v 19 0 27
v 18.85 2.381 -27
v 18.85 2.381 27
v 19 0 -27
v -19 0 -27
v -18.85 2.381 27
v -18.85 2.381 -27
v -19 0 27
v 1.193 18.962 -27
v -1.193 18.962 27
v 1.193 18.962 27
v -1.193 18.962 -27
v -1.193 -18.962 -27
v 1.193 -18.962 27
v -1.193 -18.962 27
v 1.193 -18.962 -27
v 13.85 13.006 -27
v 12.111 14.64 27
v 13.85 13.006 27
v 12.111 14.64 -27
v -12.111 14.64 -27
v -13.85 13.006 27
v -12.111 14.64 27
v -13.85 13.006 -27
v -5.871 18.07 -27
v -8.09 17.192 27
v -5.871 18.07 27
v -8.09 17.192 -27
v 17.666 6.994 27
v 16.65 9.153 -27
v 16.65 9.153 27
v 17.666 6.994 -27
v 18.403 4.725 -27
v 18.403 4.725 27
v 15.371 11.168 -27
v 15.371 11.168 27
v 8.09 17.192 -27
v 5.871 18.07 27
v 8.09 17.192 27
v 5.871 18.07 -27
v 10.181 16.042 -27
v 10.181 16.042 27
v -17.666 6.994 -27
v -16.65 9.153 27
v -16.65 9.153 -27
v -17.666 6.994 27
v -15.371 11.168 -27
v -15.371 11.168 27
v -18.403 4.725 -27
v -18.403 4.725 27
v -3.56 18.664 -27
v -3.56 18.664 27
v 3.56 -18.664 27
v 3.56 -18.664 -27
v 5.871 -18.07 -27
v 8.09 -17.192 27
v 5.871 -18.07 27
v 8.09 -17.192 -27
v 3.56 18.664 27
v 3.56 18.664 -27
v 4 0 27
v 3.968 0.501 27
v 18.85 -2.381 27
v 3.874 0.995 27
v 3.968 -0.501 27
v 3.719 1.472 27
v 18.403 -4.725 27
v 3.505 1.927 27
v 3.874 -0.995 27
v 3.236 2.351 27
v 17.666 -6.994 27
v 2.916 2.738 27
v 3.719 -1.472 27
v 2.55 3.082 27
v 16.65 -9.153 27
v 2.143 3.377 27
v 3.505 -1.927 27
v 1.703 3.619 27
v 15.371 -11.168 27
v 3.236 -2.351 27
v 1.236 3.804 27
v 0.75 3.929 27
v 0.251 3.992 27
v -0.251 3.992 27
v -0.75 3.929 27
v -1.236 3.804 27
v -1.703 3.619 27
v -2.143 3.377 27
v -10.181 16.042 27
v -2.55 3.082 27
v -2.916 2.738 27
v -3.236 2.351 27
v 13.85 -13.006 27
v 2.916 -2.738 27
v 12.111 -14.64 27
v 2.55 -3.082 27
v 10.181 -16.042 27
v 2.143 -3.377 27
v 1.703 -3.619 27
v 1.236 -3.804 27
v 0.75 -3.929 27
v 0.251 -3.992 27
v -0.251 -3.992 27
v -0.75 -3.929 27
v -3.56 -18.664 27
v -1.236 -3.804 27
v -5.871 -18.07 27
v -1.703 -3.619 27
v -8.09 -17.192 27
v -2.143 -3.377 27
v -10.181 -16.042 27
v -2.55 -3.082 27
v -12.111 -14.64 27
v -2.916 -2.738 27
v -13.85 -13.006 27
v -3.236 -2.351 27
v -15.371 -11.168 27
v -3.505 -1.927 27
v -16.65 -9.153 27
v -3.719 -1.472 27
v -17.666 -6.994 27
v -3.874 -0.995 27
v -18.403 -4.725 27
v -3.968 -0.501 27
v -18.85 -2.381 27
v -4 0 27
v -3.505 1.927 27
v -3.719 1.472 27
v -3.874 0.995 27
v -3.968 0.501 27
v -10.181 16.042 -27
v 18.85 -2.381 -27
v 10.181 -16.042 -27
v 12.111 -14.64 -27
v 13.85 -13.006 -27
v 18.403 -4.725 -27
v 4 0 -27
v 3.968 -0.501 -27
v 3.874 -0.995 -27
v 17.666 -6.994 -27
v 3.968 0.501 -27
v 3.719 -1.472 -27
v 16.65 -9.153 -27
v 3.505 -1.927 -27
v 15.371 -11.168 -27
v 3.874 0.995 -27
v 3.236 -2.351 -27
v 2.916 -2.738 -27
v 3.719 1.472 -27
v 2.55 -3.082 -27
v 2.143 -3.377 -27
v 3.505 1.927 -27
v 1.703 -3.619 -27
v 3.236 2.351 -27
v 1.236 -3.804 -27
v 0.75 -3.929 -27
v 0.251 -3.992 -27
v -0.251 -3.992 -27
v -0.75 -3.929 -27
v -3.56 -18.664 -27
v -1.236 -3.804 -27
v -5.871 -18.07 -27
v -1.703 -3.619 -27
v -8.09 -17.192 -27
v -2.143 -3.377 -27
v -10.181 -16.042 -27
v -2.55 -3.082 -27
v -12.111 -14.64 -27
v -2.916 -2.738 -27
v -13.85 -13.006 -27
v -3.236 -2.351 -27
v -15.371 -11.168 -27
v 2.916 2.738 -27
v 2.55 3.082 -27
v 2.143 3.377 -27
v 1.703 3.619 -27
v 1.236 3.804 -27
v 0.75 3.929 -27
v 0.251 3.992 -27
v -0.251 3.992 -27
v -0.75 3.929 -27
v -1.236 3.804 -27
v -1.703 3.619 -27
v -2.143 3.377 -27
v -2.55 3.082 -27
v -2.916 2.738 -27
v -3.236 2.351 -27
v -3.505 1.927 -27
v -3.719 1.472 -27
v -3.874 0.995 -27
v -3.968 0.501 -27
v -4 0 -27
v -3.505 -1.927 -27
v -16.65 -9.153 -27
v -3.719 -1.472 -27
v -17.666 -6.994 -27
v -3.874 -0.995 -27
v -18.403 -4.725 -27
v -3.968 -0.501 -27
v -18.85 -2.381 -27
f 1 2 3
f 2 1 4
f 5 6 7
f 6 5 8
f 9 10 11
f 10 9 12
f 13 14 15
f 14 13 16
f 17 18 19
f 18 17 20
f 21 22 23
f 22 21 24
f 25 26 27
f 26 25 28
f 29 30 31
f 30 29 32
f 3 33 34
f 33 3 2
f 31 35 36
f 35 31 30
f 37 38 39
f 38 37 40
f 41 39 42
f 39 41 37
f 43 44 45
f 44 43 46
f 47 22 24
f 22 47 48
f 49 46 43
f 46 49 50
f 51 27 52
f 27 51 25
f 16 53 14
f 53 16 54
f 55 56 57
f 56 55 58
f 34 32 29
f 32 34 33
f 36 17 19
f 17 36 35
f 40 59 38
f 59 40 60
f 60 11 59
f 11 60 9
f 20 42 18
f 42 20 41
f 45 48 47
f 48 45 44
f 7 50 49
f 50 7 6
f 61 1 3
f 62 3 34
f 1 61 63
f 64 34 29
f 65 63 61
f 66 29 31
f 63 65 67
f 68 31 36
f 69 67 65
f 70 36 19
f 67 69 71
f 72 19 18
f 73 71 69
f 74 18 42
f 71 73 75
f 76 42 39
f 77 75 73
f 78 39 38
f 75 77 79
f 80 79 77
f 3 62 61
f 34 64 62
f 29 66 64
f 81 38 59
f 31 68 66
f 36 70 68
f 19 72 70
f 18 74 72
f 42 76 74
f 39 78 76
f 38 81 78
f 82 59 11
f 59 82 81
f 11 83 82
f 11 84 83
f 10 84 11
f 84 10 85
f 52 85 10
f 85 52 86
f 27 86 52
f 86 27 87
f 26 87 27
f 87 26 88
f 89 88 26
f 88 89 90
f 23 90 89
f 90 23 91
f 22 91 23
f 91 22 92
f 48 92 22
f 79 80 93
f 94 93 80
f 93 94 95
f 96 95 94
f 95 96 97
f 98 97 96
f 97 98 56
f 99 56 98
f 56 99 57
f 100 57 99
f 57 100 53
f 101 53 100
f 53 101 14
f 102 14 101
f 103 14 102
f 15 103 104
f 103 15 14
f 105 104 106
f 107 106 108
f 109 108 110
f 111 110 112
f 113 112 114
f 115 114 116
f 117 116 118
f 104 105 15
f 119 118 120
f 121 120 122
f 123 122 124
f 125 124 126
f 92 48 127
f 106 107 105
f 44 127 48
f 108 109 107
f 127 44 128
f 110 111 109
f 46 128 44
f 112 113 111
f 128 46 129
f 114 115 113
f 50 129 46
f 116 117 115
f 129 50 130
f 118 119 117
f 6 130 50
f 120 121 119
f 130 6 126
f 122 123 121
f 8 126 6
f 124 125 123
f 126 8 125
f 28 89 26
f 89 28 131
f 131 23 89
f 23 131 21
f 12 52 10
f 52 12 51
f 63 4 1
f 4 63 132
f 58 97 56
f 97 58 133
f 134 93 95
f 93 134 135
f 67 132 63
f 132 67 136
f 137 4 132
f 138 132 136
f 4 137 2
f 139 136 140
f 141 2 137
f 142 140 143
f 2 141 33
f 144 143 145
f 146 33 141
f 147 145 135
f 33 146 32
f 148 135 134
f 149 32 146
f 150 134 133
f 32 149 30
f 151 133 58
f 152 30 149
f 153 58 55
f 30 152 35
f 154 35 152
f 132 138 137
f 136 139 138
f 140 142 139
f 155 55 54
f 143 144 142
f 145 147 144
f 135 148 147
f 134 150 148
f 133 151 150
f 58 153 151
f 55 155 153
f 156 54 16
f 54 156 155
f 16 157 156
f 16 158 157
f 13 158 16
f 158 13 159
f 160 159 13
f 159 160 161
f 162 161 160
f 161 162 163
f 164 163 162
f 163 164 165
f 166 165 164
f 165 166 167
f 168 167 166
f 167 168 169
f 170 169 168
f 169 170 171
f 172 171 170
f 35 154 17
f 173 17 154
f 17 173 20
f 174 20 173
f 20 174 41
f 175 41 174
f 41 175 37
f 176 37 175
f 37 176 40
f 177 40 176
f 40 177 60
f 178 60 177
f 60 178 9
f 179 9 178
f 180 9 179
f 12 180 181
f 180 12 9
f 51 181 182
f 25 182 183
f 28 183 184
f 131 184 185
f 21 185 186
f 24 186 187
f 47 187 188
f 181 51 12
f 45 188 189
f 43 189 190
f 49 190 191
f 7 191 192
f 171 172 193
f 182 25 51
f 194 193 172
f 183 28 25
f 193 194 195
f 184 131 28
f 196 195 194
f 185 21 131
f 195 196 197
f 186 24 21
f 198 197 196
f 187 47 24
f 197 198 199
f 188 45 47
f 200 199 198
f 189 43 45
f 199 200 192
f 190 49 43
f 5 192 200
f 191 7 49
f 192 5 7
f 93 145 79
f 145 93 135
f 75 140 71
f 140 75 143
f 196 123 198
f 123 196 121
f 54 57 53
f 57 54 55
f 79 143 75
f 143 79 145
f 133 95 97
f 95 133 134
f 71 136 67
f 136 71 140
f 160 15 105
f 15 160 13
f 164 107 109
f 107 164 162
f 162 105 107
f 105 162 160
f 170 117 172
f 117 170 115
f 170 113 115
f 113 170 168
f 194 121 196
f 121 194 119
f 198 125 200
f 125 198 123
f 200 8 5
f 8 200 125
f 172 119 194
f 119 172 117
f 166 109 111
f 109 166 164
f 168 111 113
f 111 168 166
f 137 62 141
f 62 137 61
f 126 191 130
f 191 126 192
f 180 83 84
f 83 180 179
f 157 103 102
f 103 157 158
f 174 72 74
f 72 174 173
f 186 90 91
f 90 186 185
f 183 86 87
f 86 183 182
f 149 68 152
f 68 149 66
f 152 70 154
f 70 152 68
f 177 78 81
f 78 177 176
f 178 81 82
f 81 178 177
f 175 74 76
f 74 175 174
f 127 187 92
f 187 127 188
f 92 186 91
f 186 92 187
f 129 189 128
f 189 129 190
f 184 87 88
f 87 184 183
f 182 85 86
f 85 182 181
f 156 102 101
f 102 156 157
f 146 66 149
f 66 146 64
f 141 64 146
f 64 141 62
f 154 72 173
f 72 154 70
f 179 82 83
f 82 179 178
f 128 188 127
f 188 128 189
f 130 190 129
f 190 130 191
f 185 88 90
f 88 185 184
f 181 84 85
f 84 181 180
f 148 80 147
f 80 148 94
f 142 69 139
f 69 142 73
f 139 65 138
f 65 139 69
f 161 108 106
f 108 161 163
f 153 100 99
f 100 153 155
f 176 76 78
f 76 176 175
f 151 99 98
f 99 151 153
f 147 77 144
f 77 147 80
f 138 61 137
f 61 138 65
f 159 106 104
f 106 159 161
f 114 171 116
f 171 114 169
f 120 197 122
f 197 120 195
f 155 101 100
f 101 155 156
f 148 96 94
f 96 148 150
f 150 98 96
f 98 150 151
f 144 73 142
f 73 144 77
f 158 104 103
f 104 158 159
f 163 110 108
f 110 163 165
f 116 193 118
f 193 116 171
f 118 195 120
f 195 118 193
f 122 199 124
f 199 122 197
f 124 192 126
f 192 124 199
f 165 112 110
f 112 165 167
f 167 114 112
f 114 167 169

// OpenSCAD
$fn = 50;


difference() {
	union() {
		translate(v = [0, 0, -27.0000000000]) {
			cylinder(h = 54, r = 19.0000000000);
		}
	}
	union() {
		translate(v = [0, 0, -100.0000000000]) {
			cylinder(h = 200, r = 4.0000000000);
		}
	}
}
